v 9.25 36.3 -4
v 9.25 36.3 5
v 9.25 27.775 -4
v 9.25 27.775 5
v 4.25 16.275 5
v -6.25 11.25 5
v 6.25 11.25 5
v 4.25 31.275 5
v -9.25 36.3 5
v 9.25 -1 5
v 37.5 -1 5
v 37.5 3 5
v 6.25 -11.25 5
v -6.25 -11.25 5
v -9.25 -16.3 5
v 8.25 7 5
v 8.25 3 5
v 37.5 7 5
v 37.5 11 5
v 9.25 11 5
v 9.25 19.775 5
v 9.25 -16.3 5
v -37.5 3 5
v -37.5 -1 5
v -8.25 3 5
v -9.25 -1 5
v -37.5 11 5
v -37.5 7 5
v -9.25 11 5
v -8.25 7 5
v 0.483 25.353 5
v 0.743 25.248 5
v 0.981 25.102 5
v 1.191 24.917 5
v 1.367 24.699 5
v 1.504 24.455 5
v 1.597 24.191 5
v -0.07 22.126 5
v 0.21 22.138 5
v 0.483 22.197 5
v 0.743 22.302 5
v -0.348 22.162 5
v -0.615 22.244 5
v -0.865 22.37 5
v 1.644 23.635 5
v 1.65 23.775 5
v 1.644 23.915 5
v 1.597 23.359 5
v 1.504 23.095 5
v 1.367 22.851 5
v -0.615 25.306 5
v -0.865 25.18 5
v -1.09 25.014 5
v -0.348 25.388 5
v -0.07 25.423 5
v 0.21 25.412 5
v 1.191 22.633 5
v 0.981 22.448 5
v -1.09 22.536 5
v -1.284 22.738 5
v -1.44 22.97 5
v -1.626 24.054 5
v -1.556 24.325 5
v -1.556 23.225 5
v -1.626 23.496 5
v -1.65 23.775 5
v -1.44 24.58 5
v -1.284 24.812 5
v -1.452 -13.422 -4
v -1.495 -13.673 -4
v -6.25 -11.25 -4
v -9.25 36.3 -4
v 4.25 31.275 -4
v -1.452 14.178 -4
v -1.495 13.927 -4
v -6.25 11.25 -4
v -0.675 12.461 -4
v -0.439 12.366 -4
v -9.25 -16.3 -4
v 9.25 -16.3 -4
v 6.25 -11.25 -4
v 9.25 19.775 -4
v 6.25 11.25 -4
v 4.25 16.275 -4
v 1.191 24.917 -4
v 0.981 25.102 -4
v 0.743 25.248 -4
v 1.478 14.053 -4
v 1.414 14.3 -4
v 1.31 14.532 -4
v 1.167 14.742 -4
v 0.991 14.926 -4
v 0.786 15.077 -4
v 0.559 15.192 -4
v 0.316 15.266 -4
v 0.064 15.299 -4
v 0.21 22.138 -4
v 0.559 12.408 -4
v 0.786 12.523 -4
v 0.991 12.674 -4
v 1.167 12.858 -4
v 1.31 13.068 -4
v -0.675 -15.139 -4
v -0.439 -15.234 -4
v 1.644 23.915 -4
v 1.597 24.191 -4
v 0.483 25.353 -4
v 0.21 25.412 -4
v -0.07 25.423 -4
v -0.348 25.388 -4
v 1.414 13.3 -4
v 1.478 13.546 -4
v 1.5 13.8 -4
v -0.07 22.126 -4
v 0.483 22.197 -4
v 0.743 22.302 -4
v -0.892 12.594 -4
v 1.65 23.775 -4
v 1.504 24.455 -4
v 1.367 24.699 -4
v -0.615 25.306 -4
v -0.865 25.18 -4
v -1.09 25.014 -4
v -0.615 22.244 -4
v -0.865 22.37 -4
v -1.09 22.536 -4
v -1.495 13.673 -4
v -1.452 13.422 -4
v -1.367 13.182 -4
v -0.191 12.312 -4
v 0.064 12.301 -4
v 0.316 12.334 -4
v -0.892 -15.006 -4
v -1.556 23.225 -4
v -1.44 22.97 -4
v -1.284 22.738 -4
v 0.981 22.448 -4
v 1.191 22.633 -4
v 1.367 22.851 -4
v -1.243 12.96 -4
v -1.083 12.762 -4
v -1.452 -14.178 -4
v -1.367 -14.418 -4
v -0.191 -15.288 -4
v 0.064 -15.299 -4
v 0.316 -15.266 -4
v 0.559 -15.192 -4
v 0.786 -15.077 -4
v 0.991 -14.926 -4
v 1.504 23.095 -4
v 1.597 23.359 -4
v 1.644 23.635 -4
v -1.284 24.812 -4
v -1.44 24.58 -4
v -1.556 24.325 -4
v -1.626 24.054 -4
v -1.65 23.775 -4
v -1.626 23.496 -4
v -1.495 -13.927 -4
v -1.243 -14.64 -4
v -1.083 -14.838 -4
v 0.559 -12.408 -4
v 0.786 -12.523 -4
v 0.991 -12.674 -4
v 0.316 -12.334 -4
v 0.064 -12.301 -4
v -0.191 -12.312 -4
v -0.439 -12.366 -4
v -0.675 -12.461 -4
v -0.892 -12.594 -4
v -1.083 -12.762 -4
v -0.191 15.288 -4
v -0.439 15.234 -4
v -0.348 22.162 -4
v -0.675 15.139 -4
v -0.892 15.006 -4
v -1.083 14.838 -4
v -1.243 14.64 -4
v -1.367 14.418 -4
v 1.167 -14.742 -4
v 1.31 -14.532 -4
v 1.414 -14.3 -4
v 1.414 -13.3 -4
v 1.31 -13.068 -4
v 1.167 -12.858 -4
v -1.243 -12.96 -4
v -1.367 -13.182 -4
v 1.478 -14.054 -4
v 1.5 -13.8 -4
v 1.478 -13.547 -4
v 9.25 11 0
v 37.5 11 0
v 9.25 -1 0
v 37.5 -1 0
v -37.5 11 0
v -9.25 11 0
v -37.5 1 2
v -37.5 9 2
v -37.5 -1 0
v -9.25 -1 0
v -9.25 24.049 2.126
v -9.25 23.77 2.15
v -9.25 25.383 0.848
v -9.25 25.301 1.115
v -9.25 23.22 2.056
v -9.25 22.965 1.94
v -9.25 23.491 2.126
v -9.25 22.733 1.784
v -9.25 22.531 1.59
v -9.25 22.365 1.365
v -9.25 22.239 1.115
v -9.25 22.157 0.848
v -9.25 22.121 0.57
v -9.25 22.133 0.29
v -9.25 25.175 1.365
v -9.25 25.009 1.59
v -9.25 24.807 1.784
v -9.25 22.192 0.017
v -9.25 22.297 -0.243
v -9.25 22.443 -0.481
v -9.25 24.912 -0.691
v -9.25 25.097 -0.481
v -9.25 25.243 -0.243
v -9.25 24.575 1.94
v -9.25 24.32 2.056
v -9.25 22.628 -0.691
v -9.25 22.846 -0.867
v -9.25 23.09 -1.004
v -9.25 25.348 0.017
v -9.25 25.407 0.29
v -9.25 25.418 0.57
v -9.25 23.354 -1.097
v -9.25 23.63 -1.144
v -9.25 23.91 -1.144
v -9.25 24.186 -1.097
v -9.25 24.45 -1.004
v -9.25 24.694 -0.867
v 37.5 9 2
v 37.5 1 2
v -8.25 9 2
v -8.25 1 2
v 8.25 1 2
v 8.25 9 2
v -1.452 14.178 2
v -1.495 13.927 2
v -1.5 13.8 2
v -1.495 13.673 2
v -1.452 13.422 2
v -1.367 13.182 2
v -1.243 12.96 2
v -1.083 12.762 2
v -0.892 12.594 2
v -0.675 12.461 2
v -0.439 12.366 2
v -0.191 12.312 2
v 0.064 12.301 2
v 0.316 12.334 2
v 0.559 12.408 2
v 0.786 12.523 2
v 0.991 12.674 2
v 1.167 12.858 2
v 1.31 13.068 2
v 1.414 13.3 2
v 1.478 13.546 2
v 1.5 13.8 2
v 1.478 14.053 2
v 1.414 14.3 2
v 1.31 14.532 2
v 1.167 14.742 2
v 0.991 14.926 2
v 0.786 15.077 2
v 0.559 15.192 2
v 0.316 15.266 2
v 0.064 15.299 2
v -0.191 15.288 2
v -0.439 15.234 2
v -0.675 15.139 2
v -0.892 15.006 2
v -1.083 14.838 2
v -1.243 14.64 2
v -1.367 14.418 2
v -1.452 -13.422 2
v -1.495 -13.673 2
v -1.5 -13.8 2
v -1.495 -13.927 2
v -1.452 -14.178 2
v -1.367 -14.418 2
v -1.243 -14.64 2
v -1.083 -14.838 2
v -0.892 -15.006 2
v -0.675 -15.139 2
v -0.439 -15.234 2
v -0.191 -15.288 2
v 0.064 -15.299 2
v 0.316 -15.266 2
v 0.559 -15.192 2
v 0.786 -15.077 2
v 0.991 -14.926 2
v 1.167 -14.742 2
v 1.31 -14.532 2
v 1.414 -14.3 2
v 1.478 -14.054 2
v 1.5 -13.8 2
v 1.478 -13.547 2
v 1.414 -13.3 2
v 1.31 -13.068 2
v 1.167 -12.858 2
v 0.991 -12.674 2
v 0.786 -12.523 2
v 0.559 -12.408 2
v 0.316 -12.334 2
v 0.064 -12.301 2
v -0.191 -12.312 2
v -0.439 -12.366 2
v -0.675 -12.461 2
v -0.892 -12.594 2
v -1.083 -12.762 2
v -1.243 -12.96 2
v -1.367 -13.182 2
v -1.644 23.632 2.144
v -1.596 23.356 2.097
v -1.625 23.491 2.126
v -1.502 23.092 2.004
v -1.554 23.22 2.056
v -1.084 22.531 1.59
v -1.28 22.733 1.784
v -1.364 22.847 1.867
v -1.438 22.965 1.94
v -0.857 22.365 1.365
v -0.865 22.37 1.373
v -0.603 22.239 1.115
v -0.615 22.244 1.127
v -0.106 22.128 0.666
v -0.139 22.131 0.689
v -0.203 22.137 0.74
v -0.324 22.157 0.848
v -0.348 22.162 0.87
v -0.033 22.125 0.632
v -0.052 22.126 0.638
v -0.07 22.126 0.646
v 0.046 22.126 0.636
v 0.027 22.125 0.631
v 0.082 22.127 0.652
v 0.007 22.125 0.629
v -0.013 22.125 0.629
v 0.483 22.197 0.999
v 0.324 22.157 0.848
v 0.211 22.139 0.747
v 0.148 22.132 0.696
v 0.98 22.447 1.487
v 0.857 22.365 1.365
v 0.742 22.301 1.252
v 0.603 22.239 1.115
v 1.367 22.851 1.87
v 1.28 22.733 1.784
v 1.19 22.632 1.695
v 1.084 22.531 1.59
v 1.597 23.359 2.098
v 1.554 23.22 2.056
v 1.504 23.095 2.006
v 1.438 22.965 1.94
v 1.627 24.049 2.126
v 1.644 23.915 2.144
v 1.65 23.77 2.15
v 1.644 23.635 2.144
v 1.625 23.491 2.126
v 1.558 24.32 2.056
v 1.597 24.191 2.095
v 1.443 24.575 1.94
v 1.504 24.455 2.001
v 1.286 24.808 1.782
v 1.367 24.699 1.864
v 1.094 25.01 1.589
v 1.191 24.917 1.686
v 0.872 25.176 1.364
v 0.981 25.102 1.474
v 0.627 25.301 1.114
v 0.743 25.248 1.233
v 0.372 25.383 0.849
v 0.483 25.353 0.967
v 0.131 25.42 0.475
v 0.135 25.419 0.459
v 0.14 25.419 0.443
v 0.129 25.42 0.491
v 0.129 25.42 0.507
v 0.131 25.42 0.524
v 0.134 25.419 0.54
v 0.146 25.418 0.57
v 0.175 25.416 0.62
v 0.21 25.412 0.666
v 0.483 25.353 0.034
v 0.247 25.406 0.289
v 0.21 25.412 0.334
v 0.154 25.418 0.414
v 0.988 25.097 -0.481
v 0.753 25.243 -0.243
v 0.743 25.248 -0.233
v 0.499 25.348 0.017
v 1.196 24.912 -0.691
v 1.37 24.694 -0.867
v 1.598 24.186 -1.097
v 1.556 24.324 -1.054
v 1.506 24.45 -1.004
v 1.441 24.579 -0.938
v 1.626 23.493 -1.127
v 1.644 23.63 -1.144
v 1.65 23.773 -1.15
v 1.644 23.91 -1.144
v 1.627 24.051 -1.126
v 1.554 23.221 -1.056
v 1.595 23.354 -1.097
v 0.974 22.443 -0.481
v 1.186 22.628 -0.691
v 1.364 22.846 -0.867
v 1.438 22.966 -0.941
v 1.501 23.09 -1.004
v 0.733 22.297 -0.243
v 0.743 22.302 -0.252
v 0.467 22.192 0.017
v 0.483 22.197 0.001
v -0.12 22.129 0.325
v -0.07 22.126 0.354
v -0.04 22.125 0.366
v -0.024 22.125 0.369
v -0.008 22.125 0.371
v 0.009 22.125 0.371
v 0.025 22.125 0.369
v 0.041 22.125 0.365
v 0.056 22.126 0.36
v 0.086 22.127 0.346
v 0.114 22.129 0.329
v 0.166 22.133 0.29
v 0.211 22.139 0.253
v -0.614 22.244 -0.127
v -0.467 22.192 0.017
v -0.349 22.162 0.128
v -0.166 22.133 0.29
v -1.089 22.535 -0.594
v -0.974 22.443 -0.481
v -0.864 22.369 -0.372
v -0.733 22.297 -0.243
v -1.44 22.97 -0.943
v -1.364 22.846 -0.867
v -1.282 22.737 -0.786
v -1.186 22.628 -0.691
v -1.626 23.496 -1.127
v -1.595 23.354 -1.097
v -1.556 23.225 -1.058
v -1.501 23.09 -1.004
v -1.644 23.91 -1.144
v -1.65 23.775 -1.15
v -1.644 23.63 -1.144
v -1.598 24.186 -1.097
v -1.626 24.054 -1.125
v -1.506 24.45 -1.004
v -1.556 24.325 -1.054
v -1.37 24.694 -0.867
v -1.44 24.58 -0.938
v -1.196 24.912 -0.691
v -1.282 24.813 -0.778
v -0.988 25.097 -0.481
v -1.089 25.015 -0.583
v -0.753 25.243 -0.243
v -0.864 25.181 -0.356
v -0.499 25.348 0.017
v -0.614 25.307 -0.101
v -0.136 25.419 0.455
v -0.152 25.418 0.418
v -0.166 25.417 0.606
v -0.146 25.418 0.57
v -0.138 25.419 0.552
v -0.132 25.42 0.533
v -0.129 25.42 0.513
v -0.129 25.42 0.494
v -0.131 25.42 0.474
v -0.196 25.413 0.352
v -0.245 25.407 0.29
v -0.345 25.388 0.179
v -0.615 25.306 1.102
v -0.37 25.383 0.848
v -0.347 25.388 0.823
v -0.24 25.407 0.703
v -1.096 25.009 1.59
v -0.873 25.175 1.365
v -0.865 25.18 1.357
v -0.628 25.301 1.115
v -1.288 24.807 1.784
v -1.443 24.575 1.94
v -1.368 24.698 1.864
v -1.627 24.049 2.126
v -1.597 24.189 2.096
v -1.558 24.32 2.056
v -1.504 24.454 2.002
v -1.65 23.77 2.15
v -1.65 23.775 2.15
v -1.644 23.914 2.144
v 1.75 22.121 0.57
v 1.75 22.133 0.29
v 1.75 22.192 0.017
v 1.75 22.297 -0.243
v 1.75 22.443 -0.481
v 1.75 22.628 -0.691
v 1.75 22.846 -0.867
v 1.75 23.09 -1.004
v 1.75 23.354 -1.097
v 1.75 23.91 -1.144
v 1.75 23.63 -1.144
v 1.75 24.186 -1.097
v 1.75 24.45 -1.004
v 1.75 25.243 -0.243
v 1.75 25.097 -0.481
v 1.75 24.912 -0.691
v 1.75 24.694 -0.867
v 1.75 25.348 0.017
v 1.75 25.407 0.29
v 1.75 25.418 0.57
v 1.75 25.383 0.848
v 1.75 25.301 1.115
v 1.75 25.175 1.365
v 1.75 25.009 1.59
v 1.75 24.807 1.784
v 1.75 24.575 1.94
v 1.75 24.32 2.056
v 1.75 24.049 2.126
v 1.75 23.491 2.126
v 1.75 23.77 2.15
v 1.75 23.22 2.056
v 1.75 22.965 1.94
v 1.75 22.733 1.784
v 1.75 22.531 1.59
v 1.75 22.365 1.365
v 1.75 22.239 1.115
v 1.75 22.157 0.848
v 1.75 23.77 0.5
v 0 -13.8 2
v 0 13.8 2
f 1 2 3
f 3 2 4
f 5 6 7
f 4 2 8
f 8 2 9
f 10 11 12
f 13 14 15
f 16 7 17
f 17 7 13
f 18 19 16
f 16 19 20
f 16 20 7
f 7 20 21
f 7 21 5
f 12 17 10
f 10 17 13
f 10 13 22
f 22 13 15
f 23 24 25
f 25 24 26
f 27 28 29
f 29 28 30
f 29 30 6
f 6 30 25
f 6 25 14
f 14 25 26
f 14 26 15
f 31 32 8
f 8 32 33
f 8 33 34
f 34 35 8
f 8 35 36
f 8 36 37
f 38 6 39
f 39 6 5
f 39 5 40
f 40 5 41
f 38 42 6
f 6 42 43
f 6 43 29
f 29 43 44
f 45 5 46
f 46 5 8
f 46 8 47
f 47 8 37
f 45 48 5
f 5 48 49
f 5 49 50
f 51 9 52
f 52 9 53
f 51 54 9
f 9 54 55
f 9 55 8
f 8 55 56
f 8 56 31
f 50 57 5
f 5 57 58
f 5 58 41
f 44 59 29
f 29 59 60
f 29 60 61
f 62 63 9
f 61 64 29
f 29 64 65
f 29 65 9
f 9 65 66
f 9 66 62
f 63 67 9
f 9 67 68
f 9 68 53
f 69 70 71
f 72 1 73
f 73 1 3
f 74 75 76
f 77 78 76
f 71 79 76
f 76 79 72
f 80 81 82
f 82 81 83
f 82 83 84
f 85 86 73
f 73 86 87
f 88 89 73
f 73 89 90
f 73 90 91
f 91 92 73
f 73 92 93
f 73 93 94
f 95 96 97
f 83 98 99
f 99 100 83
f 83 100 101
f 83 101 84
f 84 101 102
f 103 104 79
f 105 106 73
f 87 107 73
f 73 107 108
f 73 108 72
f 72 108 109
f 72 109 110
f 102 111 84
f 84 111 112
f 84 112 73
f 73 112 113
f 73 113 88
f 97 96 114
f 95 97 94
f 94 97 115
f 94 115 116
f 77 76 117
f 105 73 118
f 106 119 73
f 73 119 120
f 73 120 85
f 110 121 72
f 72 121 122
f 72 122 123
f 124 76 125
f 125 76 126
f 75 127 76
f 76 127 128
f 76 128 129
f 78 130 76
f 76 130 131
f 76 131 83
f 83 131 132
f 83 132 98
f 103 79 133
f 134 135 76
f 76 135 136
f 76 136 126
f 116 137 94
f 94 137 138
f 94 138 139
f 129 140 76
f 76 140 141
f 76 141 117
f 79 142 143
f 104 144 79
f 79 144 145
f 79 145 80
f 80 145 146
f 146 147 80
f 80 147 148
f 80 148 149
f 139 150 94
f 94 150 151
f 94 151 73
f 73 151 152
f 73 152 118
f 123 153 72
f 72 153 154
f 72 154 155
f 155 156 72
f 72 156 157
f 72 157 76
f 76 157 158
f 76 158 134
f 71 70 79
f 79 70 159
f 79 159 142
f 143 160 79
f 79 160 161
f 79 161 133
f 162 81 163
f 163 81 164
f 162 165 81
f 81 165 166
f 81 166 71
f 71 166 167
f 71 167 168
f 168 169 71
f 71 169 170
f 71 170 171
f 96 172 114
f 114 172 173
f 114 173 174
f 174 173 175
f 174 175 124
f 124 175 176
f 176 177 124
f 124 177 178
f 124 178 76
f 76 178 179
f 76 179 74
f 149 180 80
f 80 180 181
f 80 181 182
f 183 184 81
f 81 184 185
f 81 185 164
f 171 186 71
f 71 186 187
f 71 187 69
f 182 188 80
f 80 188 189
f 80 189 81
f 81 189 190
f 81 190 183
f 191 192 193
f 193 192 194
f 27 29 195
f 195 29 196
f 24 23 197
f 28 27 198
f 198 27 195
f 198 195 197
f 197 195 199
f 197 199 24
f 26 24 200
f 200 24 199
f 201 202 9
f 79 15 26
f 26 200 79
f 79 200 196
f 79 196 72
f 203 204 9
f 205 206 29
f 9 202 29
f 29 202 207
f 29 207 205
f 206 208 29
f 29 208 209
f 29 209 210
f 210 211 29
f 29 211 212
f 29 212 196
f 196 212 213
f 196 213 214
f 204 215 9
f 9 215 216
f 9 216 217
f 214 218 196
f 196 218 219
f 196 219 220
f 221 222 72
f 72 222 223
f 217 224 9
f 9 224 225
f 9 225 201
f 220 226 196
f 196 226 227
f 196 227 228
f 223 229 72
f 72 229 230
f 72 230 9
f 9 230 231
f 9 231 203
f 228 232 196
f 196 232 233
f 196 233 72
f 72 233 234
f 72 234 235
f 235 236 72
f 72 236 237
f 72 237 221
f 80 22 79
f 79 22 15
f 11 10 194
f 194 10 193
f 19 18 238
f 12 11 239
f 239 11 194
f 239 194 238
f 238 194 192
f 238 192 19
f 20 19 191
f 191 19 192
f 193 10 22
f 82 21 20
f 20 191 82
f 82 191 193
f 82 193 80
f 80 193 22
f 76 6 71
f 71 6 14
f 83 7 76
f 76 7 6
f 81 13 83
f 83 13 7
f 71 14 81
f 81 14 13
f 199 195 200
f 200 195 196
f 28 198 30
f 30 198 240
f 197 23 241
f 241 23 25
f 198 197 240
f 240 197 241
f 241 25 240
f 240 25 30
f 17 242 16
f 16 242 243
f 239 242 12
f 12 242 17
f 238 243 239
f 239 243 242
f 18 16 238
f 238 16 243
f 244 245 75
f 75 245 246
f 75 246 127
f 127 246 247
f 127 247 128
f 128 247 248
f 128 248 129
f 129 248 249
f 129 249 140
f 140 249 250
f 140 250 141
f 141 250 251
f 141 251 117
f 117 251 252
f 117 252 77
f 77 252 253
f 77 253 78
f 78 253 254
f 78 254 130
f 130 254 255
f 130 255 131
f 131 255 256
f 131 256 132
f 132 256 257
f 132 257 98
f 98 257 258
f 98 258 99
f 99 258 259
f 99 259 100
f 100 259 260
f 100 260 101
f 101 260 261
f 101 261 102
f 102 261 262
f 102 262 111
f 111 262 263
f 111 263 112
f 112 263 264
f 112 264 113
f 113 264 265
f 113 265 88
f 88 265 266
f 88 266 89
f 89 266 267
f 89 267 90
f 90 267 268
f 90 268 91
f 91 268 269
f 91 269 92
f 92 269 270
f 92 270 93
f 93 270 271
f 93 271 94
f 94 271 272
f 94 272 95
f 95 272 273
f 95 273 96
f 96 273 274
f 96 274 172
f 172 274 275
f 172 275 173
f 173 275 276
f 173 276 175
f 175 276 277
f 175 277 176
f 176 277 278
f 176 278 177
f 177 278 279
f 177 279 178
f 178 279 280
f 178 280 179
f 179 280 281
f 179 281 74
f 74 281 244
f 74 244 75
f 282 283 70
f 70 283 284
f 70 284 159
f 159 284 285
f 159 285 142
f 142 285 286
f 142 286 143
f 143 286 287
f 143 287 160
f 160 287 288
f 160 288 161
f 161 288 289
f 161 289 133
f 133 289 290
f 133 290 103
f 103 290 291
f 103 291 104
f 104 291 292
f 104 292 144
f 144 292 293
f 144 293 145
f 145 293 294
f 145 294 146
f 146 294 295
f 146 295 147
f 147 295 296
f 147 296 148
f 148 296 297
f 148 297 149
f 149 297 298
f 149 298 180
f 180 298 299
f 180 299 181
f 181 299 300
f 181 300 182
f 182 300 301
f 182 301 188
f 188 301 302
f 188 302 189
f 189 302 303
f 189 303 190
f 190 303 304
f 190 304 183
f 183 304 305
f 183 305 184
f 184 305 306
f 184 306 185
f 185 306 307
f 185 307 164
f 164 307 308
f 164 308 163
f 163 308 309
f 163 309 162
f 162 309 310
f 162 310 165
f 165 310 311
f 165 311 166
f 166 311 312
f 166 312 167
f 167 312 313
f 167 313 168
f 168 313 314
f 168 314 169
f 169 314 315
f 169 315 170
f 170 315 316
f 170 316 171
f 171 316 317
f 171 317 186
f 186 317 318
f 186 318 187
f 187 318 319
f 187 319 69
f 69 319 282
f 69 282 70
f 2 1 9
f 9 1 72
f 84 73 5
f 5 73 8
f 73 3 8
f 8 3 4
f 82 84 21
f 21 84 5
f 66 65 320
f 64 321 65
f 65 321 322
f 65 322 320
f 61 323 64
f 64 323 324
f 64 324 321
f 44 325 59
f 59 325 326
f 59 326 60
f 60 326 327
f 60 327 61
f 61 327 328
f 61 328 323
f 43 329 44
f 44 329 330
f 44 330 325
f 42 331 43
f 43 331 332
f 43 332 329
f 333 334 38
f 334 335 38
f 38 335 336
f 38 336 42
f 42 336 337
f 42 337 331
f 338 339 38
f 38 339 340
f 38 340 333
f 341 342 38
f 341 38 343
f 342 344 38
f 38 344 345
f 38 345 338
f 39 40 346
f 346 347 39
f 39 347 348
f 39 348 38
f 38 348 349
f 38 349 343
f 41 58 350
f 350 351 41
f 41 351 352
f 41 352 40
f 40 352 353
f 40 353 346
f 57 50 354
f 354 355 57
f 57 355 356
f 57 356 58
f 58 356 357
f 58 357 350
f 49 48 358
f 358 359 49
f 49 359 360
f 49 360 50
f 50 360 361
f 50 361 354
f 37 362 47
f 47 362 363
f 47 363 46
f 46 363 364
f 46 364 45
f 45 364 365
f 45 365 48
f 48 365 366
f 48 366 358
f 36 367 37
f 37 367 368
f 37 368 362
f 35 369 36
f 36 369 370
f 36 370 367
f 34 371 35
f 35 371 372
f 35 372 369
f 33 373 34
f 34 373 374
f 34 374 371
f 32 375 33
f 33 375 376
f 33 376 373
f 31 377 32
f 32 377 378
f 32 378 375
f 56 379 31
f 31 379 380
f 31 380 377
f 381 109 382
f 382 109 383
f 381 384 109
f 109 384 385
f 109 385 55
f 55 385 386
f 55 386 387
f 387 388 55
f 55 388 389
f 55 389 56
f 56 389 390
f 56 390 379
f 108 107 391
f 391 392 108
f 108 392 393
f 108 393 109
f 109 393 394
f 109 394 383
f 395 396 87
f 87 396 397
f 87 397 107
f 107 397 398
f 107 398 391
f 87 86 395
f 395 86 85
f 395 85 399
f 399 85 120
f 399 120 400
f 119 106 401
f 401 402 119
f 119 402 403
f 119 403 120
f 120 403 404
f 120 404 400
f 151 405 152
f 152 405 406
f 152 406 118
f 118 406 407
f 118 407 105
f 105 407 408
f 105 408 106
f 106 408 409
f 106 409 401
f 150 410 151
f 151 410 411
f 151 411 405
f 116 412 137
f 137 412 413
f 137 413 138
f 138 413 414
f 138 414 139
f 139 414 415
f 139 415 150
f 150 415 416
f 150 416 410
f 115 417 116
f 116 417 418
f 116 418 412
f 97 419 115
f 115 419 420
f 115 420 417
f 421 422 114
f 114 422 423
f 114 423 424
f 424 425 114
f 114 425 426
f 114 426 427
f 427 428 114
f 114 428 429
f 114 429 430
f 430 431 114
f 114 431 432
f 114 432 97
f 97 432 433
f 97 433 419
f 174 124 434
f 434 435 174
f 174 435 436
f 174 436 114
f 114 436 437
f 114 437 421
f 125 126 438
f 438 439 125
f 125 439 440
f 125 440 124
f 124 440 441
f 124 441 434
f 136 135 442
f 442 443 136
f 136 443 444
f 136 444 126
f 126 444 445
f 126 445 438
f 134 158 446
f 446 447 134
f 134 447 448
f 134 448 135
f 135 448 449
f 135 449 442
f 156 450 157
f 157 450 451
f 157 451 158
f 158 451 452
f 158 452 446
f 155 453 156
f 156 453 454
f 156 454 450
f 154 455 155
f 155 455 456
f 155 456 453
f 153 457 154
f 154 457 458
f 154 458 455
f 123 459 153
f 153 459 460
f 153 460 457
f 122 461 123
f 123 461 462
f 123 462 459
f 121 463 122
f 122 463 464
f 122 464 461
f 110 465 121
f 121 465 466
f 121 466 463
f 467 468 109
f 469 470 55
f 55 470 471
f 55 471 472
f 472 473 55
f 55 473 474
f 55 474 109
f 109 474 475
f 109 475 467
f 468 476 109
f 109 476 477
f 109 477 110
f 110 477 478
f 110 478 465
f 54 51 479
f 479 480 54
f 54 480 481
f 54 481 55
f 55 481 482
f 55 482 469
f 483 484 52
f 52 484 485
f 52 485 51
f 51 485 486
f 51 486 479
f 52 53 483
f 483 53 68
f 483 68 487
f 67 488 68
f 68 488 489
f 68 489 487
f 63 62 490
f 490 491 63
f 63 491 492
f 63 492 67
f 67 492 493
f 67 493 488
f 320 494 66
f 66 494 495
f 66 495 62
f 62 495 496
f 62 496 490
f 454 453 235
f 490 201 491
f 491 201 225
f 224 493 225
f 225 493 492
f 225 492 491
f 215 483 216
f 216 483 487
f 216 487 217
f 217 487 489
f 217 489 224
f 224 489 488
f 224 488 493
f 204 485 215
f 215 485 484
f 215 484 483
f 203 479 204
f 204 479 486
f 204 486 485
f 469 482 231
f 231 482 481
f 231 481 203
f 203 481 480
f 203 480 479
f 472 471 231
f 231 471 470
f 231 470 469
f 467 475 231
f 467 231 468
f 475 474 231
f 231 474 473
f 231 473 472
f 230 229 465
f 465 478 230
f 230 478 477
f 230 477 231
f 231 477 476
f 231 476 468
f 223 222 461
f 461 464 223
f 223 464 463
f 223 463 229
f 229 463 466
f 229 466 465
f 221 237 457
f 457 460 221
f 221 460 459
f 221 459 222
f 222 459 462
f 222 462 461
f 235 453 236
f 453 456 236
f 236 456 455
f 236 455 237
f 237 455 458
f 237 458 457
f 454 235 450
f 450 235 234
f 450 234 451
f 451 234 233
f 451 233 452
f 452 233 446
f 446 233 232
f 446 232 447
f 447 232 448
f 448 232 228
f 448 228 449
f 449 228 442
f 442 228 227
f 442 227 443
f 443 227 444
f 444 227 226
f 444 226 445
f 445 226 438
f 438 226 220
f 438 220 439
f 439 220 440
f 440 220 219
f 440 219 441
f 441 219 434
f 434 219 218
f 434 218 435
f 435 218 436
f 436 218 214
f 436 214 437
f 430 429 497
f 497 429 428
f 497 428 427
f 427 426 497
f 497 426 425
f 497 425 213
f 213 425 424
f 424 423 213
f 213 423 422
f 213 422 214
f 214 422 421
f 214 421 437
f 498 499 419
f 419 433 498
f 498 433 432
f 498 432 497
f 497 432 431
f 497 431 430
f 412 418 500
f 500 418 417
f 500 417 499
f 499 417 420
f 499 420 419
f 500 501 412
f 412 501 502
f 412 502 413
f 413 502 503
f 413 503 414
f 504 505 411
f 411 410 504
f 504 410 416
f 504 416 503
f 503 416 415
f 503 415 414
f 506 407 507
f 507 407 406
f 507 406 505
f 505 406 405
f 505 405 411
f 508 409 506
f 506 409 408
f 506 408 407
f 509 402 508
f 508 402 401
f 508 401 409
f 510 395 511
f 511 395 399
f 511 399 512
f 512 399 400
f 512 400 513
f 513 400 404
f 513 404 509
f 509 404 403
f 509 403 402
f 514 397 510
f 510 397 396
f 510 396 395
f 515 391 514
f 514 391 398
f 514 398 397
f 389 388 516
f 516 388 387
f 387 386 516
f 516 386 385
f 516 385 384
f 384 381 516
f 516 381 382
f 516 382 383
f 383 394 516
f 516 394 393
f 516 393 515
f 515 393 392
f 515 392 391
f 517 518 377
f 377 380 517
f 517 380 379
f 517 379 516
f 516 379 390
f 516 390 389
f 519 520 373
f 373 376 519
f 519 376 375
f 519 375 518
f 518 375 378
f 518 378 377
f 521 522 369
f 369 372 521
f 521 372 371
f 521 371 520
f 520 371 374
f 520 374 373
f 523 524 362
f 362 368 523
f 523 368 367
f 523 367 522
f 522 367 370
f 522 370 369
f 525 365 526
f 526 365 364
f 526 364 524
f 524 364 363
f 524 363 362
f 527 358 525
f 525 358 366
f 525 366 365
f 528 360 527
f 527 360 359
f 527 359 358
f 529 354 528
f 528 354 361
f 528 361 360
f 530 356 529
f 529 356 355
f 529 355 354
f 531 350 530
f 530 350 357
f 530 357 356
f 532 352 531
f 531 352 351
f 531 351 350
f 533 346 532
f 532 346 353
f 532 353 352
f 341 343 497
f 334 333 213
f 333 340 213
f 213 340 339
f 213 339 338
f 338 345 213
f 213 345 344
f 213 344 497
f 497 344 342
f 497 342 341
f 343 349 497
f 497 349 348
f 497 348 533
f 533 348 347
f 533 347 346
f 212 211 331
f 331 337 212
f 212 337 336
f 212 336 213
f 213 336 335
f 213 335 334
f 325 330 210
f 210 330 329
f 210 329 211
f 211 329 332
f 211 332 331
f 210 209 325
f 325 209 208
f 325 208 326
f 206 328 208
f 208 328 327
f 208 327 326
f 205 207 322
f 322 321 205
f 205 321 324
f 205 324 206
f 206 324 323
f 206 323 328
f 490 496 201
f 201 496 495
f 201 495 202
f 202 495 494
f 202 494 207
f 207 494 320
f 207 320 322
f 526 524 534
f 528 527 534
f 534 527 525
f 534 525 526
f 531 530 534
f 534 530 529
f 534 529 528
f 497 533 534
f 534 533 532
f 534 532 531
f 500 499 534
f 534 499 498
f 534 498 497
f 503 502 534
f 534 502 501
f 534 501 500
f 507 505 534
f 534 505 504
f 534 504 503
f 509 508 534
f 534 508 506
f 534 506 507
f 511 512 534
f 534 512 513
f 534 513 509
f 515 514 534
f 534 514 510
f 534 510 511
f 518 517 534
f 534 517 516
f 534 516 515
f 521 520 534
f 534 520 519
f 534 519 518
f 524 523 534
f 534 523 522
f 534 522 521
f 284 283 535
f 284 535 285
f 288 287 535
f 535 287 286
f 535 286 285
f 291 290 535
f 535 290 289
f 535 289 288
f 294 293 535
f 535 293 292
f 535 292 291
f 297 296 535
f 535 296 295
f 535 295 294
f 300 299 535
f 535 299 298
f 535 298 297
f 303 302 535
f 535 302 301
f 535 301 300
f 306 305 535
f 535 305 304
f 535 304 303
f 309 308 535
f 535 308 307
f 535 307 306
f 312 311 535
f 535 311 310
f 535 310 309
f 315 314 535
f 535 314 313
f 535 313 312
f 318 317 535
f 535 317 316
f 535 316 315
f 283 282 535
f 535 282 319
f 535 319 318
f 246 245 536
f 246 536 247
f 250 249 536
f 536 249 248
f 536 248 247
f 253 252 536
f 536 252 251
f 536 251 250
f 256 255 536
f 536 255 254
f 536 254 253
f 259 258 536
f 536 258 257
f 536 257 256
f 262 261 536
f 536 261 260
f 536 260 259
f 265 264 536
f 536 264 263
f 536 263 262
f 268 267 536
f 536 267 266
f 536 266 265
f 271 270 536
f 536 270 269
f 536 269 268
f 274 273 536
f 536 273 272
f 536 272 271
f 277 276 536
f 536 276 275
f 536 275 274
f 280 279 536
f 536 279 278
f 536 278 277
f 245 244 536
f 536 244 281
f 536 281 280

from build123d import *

# Parameters (mm, degrees)
SKETCH_1_W           = 12.5
SKETCH_1_H           = 22.5
EXTRUDE_1_DEPTH      = 5
CUT_EXTRUDE_2_DEPTH  = 29.25
CUT_EXTRUDE_4_DEPTH  = 29.25
SKETCH_1_9_R         = 1.5
SKETCH_1_9_W         = 3
SKETCH_1_9_H         = 4.5
EXTRUDE_2_DEPTH      = 4
EXTRUDE_7_DEPTH      = 5
EXTRUDE_7_DEPTH_BACK = 4
SKETCH_1_11_W        = 18.5
SKETCH_1_11_H        = 20
CUT_EXTRUDE_5_DEPTH  = 53.961684263
CUT_EXTRUDE_START    = -9
CUT_EXTRUDE_7_DEPTH  = 9
CUT_EXTRUDE_8_DEPTH  = 11
CUT_EXTRUDE_START_2  = -2
SKETCH_10_R          = 1.5
CUT_EXTRUDE_9_DEPTH  = 2


with BuildPart() as part:
    # 草图1 → 凸台-拉伸1 (new body)
    with BuildSketch(Plane.XY):
        Polygon((-9.25, 11), (-37.5, 11), (-37.5, -1), (-9.25, -1), (-9.25, -16.3), (9.25, -16.3), (9.25, -1), (37.5, -1), (37.5, 11), (9.25, 11), (9.25, 16.3), (-9.25, 16.3), align=None)
        Rectangle(SKETCH_1_W, SKETCH_1_H, mode=Mode.SUBTRACT)
    extrude(amount=EXTRUDE_1_DEPTH)

    # 草图2 → 切除-拉伸2 (cut)
    with BuildSketch(Plane.ZY.offset(37.5)):
        Polygon((5, 7), (5, 3), (2, 1), (2, 9), align=None)
    extrude(amount=-CUT_EXTRUDE_2_DEPTH, mode=Mode.SUBTRACT)

    # 草图3 → 切除-拉伸4 (cut)
    with BuildSketch(Plane(origin=(37.5, 0, 0), x_dir=(0, 0, -1), z_dir=(1, 0, 0))):
        Polygon((-5, 7), (-5, 3), (-2, 1), (-2, 9), align=None)
    extrude(amount=-CUT_EXTRUDE_4_DEPTH, mode=Mode.SUBTRACT)

    # 草图1<9> → 凸台-拉伸2 (add)
    # profile 1 of 8: a face of its own
    with BuildSketch(Plane.XY):
        Polygon((-9.25, 11), (-6.25, 11), (-6.25, 11.25), (0, 11.25), (6.25, 11.25), (6.25, 11), (9.25, 11), (9.25, 16.3), (-9.25, 16.3), align=None)
        with Locations((0, 13.8)):
            Circle(SKETCH_1_9_R, mode=Mode.SUBTRACT)
    # profile 2 of 8: a face of its own
    with BuildSketch(Plane.XY):
        with Locations((-7.75, 8.75)):
            Rectangle(SKETCH_1_9_W, SKETCH_1_9_H)
    # profile 3 of 8: a face of its own
    with BuildSketch(Plane.XY):
        with Locations((7.75, 8.75)):
            Rectangle(SKETCH_1_9_W, SKETCH_1_9_H)
    # profile 4 of 8: a face of its own
    with BuildSketch(Plane.XY):
        Polygon((6.25, 5), (6.25, 3.5), (9.25, 3.5), (9.25, 6.5), (6.25, 6.5), align=None)
    # profile 5 of 8: a face of its own
    with BuildSketch(Plane.XY):
        with Locations((7.75, 1.25)):
            Rectangle(SKETCH_1_9_W, SKETCH_1_9_H)
    # profile 6 of 8: a face of its own
    with BuildSketch(Plane.XY):
        Polygon((6.25, -11.25), (-6.25, -11.25), (-6.25, -1), (-9.25, -1), (-9.25, -16.3), (9.25, -16.3), (9.25, -1), (6.25, -1), align=None)
        with Locations((0, -13.8)):
            Circle(SKETCH_1_9_R, mode=Mode.SUBTRACT)
    # profile 7 of 8: a face of its own
    with BuildSketch(Plane.XY):
        with Locations((-7.75, 1.25)):
            Rectangle(SKETCH_1_9_W, SKETCH_1_9_H)
    # profile 8 of 8: a face of its own
    with BuildSketch(Plane.XY):
        Polygon((-9.25, 3.5), (-6.25, 3.5), (-6.25, 4.999999998), (-6.25, 6.5), (-9.25, 6.5), align=None)
    extrude(amount=-EXTRUDE_2_DEPTH)

    # 草图1<11> → 凸台-拉伸7 (add, two sides: drawn at the far end of the back side and taken through both)
    with BuildSketch(Plane.XY.offset(-EXTRUDE_7_DEPTH_BACK)):
        with Locations((0, 26.3)):
            Rectangle(SKETCH_1_11_W, SKETCH_1_11_H)
    extrude(amount=EXTRUDE_7_DEPTH + EXTRUDE_7_DEPTH_BACK)

    # 草图6 → 切除-拉伸5 (cut, through all)
    with BuildSketch(Plane.XY.offset(5)):
        Polygon((9.25, 23.775), (9.25, 27.775), (4.25, 31.275), (4.25, 23.775), align=None)
        Polygon((9.25, 19.775), (9.25, 23.775), (4.25, 23.775), (4.25, 16.275), align=None)
    extrude(amount=-CUT_EXTRUDE_5_DEPTH, mode=Mode.SUBTRACT)

    # 草图6<4> → 切除-拉伸7 (cut)
    with BuildSketch(Plane.XY.offset(5).offset(CUT_EXTRUDE_START)):
        with BuildLine():
            ThreePointArc((-1.65, 23.775), (0, 22.125), (1.65, 23.775))
            Line((1.65, 23.775), (-1.65, 23.775))
        make_face()
        with BuildLine():
            Line((-1.65, 23.775), (1.65, 23.775))
            ThreePointArc((1.65, 23.775), (0, 25.425), (-1.65, 23.775))
        make_face()
        with BuildLine():
            ThreePointArc((-1.65, 23.775), (0, 22.125), (1.65, 23.775))
            Line((1.65, 23.775), (-1.65, 23.775))
        make_face()
        with BuildLine():
            Line((-1.65, 23.775), (1.65, 23.775))
            ThreePointArc((1.65, 23.775), (0, 25.425), (-1.65, 23.775))
        make_face()
    extrude(amount=CUT_EXTRUDE_7_DEPTH, mode=Mode.SUBTRACT)

    # 草图9 → 切除-拉伸8 (cut)
    with BuildSketch(Plane.ZY.offset(9.25)):
        with BuildLine():
            ThreePointArc((2.15, 23.77), (0.5, 25.42), (-1.15, 23.77))
            Line((-1.15, 23.77), (2.15, 23.77))
        make_face()
        with BuildLine():
            Line((2.15, 23.77), (-1.15, 23.77))
            ThreePointArc((-1.15, 23.77), (0.5, 22.12), (2.15, 23.77))
        make_face()
        with BuildLine():
            ThreePointArc((2.15, 23.77), (0.5, 25.42), (-1.15, 23.77))
            Line((-1.15, 23.77), (2.15, 23.77))
        make_face()
        with BuildLine():
            Line((2.15, 23.77), (-1.15, 23.77))
            ThreePointArc((-1.15, 23.77), (0.5, 22.12), (2.15, 23.77))
        make_face()
    extrude(amount=-CUT_EXTRUDE_8_DEPTH, mode=Mode.SUBTRACT)

    # 草图10 → 切除-拉伸9 (cut)
    with BuildSketch(Plane(origin=(0, 0, 0), x_dir=(-1, 0, 0), z_dir=(0, 0, -1)).offset(CUT_EXTRUDE_START_2)):
        with Locations(Location((0, 13.8, 0), (0, 0, 180))):
            Circle(SKETCH_10_R)
        with Locations(Location((0, -13.8, 0), (0, 0, 180))):
            Circle(SKETCH_10_R)
    extrude(amount=CUT_EXTRUDE_9_DEPTH, mode=Mode.SUBTRACT)


solid = part.part
